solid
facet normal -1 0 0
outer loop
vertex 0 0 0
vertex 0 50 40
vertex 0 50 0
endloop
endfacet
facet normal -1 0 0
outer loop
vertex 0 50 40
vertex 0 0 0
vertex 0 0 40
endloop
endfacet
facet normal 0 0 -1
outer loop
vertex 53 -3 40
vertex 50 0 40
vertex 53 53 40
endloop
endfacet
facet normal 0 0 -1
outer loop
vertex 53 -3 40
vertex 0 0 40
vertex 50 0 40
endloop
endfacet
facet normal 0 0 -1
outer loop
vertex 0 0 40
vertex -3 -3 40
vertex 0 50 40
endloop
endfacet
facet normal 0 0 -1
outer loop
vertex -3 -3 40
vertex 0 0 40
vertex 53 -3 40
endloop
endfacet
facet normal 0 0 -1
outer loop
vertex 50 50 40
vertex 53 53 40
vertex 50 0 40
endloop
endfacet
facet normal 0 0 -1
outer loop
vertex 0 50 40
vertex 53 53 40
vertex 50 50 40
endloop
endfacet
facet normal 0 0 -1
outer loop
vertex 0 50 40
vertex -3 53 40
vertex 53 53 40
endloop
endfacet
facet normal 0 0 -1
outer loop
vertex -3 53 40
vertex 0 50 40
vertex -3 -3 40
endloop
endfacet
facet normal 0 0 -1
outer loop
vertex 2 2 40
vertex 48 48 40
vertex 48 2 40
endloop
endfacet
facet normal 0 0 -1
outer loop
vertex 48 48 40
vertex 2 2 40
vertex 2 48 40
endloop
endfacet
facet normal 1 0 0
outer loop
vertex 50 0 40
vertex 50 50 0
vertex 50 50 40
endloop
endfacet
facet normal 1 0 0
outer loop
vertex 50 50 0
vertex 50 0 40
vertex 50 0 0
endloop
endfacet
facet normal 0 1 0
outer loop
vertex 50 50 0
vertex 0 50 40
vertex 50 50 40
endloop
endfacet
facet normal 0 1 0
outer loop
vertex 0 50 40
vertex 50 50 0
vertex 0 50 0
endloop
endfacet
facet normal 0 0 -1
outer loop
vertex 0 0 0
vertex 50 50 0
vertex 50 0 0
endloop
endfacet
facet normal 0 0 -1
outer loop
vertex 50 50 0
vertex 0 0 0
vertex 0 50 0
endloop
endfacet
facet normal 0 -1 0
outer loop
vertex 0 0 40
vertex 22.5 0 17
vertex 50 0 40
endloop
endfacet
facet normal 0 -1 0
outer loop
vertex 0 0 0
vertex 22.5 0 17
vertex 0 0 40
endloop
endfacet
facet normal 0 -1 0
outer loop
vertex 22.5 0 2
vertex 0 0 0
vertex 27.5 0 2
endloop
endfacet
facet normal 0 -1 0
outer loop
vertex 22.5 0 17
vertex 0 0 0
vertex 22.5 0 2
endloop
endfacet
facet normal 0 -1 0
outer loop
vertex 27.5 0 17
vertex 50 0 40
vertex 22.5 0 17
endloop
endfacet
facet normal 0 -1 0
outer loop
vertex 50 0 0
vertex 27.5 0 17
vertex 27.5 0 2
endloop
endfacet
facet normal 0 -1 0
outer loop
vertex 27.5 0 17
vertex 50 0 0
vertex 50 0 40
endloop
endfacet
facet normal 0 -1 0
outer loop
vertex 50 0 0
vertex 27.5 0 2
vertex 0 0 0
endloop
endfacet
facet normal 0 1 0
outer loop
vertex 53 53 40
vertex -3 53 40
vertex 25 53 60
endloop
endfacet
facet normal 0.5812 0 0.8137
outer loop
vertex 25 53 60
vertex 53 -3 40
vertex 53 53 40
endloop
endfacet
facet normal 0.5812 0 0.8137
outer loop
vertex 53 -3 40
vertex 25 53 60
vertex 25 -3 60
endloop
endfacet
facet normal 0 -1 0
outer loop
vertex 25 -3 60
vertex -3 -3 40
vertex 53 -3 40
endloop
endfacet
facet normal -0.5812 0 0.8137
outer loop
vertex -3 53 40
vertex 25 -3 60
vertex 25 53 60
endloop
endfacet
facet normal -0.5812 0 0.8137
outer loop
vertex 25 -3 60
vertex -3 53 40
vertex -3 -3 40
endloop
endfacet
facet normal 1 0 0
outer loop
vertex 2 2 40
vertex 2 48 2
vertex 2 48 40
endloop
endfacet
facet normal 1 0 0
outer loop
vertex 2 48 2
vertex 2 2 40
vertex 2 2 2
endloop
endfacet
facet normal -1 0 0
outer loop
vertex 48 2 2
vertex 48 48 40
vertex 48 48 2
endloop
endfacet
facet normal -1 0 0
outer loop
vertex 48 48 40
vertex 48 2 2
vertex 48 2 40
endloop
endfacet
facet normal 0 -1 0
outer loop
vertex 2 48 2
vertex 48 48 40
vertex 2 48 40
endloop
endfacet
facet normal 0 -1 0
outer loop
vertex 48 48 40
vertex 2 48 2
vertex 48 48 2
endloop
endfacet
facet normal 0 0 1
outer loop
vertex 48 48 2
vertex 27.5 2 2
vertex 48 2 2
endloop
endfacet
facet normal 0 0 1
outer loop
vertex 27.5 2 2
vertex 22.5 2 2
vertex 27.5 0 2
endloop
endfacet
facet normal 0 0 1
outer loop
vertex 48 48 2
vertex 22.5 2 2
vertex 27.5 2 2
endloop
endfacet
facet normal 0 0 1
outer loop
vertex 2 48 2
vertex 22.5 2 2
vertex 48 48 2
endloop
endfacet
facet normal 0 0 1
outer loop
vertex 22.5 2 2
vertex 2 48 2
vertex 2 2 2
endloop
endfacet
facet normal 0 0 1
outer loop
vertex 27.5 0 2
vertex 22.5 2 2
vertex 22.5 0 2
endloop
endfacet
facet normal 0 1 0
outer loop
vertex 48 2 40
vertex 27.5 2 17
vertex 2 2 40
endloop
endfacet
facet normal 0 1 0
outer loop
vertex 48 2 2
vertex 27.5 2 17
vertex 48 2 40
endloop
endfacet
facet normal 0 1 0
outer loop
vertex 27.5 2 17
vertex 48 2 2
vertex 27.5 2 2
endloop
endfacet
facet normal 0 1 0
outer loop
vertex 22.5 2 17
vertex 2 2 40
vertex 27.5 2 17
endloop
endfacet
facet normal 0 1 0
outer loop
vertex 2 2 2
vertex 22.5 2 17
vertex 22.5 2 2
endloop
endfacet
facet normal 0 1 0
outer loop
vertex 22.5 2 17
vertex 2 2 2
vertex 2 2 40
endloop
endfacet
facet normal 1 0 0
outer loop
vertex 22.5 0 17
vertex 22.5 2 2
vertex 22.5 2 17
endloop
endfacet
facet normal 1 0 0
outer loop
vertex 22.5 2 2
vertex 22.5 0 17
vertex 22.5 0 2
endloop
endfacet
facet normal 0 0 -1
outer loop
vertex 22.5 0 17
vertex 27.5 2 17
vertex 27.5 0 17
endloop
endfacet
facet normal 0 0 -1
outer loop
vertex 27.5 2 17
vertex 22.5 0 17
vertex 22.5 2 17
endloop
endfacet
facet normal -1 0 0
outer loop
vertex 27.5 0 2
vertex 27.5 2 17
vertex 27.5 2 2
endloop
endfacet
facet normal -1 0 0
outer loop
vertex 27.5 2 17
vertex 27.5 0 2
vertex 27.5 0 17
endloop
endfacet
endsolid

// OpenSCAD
width_house = 50;
depth_house = 50;
height_house = 40;
height_roof = 20;
roof_overhang = 3;
wall_thickness = 2;
width_door = 5;
height_door = 15;



module roof() {
    translate([0,depth_house+roof_overhang,height_house])
    rotate(a=90, v=[1,0,0])
    linear_extrude(height=depth_house + 2*roof_overhang)
    polygon(points = [
        [-roof_overhang, 0],
        [width_house/2, height_roof],
        [width_house+roof_overhang, 0]
        ]);
}


module door() {
    translate([width_house/2-width_door/2, -depth_house/2, wall_thickness])
    cube([width_door, depth_house, height_door]);
}


module outside_house() {
    cube([width_house, depth_house, height_house]);
    roof();
}

module inside_house() {
    translate([wall_thickness, wall_thickness, wall_thickness])
    cube([width_house-2*wall_thickness, depth_house-2*wall_thickness, height_house+100]);
}

module house() {
    difference() {
        outside_house();
        inside_house();
        door();
    };
}

roof();
house();
